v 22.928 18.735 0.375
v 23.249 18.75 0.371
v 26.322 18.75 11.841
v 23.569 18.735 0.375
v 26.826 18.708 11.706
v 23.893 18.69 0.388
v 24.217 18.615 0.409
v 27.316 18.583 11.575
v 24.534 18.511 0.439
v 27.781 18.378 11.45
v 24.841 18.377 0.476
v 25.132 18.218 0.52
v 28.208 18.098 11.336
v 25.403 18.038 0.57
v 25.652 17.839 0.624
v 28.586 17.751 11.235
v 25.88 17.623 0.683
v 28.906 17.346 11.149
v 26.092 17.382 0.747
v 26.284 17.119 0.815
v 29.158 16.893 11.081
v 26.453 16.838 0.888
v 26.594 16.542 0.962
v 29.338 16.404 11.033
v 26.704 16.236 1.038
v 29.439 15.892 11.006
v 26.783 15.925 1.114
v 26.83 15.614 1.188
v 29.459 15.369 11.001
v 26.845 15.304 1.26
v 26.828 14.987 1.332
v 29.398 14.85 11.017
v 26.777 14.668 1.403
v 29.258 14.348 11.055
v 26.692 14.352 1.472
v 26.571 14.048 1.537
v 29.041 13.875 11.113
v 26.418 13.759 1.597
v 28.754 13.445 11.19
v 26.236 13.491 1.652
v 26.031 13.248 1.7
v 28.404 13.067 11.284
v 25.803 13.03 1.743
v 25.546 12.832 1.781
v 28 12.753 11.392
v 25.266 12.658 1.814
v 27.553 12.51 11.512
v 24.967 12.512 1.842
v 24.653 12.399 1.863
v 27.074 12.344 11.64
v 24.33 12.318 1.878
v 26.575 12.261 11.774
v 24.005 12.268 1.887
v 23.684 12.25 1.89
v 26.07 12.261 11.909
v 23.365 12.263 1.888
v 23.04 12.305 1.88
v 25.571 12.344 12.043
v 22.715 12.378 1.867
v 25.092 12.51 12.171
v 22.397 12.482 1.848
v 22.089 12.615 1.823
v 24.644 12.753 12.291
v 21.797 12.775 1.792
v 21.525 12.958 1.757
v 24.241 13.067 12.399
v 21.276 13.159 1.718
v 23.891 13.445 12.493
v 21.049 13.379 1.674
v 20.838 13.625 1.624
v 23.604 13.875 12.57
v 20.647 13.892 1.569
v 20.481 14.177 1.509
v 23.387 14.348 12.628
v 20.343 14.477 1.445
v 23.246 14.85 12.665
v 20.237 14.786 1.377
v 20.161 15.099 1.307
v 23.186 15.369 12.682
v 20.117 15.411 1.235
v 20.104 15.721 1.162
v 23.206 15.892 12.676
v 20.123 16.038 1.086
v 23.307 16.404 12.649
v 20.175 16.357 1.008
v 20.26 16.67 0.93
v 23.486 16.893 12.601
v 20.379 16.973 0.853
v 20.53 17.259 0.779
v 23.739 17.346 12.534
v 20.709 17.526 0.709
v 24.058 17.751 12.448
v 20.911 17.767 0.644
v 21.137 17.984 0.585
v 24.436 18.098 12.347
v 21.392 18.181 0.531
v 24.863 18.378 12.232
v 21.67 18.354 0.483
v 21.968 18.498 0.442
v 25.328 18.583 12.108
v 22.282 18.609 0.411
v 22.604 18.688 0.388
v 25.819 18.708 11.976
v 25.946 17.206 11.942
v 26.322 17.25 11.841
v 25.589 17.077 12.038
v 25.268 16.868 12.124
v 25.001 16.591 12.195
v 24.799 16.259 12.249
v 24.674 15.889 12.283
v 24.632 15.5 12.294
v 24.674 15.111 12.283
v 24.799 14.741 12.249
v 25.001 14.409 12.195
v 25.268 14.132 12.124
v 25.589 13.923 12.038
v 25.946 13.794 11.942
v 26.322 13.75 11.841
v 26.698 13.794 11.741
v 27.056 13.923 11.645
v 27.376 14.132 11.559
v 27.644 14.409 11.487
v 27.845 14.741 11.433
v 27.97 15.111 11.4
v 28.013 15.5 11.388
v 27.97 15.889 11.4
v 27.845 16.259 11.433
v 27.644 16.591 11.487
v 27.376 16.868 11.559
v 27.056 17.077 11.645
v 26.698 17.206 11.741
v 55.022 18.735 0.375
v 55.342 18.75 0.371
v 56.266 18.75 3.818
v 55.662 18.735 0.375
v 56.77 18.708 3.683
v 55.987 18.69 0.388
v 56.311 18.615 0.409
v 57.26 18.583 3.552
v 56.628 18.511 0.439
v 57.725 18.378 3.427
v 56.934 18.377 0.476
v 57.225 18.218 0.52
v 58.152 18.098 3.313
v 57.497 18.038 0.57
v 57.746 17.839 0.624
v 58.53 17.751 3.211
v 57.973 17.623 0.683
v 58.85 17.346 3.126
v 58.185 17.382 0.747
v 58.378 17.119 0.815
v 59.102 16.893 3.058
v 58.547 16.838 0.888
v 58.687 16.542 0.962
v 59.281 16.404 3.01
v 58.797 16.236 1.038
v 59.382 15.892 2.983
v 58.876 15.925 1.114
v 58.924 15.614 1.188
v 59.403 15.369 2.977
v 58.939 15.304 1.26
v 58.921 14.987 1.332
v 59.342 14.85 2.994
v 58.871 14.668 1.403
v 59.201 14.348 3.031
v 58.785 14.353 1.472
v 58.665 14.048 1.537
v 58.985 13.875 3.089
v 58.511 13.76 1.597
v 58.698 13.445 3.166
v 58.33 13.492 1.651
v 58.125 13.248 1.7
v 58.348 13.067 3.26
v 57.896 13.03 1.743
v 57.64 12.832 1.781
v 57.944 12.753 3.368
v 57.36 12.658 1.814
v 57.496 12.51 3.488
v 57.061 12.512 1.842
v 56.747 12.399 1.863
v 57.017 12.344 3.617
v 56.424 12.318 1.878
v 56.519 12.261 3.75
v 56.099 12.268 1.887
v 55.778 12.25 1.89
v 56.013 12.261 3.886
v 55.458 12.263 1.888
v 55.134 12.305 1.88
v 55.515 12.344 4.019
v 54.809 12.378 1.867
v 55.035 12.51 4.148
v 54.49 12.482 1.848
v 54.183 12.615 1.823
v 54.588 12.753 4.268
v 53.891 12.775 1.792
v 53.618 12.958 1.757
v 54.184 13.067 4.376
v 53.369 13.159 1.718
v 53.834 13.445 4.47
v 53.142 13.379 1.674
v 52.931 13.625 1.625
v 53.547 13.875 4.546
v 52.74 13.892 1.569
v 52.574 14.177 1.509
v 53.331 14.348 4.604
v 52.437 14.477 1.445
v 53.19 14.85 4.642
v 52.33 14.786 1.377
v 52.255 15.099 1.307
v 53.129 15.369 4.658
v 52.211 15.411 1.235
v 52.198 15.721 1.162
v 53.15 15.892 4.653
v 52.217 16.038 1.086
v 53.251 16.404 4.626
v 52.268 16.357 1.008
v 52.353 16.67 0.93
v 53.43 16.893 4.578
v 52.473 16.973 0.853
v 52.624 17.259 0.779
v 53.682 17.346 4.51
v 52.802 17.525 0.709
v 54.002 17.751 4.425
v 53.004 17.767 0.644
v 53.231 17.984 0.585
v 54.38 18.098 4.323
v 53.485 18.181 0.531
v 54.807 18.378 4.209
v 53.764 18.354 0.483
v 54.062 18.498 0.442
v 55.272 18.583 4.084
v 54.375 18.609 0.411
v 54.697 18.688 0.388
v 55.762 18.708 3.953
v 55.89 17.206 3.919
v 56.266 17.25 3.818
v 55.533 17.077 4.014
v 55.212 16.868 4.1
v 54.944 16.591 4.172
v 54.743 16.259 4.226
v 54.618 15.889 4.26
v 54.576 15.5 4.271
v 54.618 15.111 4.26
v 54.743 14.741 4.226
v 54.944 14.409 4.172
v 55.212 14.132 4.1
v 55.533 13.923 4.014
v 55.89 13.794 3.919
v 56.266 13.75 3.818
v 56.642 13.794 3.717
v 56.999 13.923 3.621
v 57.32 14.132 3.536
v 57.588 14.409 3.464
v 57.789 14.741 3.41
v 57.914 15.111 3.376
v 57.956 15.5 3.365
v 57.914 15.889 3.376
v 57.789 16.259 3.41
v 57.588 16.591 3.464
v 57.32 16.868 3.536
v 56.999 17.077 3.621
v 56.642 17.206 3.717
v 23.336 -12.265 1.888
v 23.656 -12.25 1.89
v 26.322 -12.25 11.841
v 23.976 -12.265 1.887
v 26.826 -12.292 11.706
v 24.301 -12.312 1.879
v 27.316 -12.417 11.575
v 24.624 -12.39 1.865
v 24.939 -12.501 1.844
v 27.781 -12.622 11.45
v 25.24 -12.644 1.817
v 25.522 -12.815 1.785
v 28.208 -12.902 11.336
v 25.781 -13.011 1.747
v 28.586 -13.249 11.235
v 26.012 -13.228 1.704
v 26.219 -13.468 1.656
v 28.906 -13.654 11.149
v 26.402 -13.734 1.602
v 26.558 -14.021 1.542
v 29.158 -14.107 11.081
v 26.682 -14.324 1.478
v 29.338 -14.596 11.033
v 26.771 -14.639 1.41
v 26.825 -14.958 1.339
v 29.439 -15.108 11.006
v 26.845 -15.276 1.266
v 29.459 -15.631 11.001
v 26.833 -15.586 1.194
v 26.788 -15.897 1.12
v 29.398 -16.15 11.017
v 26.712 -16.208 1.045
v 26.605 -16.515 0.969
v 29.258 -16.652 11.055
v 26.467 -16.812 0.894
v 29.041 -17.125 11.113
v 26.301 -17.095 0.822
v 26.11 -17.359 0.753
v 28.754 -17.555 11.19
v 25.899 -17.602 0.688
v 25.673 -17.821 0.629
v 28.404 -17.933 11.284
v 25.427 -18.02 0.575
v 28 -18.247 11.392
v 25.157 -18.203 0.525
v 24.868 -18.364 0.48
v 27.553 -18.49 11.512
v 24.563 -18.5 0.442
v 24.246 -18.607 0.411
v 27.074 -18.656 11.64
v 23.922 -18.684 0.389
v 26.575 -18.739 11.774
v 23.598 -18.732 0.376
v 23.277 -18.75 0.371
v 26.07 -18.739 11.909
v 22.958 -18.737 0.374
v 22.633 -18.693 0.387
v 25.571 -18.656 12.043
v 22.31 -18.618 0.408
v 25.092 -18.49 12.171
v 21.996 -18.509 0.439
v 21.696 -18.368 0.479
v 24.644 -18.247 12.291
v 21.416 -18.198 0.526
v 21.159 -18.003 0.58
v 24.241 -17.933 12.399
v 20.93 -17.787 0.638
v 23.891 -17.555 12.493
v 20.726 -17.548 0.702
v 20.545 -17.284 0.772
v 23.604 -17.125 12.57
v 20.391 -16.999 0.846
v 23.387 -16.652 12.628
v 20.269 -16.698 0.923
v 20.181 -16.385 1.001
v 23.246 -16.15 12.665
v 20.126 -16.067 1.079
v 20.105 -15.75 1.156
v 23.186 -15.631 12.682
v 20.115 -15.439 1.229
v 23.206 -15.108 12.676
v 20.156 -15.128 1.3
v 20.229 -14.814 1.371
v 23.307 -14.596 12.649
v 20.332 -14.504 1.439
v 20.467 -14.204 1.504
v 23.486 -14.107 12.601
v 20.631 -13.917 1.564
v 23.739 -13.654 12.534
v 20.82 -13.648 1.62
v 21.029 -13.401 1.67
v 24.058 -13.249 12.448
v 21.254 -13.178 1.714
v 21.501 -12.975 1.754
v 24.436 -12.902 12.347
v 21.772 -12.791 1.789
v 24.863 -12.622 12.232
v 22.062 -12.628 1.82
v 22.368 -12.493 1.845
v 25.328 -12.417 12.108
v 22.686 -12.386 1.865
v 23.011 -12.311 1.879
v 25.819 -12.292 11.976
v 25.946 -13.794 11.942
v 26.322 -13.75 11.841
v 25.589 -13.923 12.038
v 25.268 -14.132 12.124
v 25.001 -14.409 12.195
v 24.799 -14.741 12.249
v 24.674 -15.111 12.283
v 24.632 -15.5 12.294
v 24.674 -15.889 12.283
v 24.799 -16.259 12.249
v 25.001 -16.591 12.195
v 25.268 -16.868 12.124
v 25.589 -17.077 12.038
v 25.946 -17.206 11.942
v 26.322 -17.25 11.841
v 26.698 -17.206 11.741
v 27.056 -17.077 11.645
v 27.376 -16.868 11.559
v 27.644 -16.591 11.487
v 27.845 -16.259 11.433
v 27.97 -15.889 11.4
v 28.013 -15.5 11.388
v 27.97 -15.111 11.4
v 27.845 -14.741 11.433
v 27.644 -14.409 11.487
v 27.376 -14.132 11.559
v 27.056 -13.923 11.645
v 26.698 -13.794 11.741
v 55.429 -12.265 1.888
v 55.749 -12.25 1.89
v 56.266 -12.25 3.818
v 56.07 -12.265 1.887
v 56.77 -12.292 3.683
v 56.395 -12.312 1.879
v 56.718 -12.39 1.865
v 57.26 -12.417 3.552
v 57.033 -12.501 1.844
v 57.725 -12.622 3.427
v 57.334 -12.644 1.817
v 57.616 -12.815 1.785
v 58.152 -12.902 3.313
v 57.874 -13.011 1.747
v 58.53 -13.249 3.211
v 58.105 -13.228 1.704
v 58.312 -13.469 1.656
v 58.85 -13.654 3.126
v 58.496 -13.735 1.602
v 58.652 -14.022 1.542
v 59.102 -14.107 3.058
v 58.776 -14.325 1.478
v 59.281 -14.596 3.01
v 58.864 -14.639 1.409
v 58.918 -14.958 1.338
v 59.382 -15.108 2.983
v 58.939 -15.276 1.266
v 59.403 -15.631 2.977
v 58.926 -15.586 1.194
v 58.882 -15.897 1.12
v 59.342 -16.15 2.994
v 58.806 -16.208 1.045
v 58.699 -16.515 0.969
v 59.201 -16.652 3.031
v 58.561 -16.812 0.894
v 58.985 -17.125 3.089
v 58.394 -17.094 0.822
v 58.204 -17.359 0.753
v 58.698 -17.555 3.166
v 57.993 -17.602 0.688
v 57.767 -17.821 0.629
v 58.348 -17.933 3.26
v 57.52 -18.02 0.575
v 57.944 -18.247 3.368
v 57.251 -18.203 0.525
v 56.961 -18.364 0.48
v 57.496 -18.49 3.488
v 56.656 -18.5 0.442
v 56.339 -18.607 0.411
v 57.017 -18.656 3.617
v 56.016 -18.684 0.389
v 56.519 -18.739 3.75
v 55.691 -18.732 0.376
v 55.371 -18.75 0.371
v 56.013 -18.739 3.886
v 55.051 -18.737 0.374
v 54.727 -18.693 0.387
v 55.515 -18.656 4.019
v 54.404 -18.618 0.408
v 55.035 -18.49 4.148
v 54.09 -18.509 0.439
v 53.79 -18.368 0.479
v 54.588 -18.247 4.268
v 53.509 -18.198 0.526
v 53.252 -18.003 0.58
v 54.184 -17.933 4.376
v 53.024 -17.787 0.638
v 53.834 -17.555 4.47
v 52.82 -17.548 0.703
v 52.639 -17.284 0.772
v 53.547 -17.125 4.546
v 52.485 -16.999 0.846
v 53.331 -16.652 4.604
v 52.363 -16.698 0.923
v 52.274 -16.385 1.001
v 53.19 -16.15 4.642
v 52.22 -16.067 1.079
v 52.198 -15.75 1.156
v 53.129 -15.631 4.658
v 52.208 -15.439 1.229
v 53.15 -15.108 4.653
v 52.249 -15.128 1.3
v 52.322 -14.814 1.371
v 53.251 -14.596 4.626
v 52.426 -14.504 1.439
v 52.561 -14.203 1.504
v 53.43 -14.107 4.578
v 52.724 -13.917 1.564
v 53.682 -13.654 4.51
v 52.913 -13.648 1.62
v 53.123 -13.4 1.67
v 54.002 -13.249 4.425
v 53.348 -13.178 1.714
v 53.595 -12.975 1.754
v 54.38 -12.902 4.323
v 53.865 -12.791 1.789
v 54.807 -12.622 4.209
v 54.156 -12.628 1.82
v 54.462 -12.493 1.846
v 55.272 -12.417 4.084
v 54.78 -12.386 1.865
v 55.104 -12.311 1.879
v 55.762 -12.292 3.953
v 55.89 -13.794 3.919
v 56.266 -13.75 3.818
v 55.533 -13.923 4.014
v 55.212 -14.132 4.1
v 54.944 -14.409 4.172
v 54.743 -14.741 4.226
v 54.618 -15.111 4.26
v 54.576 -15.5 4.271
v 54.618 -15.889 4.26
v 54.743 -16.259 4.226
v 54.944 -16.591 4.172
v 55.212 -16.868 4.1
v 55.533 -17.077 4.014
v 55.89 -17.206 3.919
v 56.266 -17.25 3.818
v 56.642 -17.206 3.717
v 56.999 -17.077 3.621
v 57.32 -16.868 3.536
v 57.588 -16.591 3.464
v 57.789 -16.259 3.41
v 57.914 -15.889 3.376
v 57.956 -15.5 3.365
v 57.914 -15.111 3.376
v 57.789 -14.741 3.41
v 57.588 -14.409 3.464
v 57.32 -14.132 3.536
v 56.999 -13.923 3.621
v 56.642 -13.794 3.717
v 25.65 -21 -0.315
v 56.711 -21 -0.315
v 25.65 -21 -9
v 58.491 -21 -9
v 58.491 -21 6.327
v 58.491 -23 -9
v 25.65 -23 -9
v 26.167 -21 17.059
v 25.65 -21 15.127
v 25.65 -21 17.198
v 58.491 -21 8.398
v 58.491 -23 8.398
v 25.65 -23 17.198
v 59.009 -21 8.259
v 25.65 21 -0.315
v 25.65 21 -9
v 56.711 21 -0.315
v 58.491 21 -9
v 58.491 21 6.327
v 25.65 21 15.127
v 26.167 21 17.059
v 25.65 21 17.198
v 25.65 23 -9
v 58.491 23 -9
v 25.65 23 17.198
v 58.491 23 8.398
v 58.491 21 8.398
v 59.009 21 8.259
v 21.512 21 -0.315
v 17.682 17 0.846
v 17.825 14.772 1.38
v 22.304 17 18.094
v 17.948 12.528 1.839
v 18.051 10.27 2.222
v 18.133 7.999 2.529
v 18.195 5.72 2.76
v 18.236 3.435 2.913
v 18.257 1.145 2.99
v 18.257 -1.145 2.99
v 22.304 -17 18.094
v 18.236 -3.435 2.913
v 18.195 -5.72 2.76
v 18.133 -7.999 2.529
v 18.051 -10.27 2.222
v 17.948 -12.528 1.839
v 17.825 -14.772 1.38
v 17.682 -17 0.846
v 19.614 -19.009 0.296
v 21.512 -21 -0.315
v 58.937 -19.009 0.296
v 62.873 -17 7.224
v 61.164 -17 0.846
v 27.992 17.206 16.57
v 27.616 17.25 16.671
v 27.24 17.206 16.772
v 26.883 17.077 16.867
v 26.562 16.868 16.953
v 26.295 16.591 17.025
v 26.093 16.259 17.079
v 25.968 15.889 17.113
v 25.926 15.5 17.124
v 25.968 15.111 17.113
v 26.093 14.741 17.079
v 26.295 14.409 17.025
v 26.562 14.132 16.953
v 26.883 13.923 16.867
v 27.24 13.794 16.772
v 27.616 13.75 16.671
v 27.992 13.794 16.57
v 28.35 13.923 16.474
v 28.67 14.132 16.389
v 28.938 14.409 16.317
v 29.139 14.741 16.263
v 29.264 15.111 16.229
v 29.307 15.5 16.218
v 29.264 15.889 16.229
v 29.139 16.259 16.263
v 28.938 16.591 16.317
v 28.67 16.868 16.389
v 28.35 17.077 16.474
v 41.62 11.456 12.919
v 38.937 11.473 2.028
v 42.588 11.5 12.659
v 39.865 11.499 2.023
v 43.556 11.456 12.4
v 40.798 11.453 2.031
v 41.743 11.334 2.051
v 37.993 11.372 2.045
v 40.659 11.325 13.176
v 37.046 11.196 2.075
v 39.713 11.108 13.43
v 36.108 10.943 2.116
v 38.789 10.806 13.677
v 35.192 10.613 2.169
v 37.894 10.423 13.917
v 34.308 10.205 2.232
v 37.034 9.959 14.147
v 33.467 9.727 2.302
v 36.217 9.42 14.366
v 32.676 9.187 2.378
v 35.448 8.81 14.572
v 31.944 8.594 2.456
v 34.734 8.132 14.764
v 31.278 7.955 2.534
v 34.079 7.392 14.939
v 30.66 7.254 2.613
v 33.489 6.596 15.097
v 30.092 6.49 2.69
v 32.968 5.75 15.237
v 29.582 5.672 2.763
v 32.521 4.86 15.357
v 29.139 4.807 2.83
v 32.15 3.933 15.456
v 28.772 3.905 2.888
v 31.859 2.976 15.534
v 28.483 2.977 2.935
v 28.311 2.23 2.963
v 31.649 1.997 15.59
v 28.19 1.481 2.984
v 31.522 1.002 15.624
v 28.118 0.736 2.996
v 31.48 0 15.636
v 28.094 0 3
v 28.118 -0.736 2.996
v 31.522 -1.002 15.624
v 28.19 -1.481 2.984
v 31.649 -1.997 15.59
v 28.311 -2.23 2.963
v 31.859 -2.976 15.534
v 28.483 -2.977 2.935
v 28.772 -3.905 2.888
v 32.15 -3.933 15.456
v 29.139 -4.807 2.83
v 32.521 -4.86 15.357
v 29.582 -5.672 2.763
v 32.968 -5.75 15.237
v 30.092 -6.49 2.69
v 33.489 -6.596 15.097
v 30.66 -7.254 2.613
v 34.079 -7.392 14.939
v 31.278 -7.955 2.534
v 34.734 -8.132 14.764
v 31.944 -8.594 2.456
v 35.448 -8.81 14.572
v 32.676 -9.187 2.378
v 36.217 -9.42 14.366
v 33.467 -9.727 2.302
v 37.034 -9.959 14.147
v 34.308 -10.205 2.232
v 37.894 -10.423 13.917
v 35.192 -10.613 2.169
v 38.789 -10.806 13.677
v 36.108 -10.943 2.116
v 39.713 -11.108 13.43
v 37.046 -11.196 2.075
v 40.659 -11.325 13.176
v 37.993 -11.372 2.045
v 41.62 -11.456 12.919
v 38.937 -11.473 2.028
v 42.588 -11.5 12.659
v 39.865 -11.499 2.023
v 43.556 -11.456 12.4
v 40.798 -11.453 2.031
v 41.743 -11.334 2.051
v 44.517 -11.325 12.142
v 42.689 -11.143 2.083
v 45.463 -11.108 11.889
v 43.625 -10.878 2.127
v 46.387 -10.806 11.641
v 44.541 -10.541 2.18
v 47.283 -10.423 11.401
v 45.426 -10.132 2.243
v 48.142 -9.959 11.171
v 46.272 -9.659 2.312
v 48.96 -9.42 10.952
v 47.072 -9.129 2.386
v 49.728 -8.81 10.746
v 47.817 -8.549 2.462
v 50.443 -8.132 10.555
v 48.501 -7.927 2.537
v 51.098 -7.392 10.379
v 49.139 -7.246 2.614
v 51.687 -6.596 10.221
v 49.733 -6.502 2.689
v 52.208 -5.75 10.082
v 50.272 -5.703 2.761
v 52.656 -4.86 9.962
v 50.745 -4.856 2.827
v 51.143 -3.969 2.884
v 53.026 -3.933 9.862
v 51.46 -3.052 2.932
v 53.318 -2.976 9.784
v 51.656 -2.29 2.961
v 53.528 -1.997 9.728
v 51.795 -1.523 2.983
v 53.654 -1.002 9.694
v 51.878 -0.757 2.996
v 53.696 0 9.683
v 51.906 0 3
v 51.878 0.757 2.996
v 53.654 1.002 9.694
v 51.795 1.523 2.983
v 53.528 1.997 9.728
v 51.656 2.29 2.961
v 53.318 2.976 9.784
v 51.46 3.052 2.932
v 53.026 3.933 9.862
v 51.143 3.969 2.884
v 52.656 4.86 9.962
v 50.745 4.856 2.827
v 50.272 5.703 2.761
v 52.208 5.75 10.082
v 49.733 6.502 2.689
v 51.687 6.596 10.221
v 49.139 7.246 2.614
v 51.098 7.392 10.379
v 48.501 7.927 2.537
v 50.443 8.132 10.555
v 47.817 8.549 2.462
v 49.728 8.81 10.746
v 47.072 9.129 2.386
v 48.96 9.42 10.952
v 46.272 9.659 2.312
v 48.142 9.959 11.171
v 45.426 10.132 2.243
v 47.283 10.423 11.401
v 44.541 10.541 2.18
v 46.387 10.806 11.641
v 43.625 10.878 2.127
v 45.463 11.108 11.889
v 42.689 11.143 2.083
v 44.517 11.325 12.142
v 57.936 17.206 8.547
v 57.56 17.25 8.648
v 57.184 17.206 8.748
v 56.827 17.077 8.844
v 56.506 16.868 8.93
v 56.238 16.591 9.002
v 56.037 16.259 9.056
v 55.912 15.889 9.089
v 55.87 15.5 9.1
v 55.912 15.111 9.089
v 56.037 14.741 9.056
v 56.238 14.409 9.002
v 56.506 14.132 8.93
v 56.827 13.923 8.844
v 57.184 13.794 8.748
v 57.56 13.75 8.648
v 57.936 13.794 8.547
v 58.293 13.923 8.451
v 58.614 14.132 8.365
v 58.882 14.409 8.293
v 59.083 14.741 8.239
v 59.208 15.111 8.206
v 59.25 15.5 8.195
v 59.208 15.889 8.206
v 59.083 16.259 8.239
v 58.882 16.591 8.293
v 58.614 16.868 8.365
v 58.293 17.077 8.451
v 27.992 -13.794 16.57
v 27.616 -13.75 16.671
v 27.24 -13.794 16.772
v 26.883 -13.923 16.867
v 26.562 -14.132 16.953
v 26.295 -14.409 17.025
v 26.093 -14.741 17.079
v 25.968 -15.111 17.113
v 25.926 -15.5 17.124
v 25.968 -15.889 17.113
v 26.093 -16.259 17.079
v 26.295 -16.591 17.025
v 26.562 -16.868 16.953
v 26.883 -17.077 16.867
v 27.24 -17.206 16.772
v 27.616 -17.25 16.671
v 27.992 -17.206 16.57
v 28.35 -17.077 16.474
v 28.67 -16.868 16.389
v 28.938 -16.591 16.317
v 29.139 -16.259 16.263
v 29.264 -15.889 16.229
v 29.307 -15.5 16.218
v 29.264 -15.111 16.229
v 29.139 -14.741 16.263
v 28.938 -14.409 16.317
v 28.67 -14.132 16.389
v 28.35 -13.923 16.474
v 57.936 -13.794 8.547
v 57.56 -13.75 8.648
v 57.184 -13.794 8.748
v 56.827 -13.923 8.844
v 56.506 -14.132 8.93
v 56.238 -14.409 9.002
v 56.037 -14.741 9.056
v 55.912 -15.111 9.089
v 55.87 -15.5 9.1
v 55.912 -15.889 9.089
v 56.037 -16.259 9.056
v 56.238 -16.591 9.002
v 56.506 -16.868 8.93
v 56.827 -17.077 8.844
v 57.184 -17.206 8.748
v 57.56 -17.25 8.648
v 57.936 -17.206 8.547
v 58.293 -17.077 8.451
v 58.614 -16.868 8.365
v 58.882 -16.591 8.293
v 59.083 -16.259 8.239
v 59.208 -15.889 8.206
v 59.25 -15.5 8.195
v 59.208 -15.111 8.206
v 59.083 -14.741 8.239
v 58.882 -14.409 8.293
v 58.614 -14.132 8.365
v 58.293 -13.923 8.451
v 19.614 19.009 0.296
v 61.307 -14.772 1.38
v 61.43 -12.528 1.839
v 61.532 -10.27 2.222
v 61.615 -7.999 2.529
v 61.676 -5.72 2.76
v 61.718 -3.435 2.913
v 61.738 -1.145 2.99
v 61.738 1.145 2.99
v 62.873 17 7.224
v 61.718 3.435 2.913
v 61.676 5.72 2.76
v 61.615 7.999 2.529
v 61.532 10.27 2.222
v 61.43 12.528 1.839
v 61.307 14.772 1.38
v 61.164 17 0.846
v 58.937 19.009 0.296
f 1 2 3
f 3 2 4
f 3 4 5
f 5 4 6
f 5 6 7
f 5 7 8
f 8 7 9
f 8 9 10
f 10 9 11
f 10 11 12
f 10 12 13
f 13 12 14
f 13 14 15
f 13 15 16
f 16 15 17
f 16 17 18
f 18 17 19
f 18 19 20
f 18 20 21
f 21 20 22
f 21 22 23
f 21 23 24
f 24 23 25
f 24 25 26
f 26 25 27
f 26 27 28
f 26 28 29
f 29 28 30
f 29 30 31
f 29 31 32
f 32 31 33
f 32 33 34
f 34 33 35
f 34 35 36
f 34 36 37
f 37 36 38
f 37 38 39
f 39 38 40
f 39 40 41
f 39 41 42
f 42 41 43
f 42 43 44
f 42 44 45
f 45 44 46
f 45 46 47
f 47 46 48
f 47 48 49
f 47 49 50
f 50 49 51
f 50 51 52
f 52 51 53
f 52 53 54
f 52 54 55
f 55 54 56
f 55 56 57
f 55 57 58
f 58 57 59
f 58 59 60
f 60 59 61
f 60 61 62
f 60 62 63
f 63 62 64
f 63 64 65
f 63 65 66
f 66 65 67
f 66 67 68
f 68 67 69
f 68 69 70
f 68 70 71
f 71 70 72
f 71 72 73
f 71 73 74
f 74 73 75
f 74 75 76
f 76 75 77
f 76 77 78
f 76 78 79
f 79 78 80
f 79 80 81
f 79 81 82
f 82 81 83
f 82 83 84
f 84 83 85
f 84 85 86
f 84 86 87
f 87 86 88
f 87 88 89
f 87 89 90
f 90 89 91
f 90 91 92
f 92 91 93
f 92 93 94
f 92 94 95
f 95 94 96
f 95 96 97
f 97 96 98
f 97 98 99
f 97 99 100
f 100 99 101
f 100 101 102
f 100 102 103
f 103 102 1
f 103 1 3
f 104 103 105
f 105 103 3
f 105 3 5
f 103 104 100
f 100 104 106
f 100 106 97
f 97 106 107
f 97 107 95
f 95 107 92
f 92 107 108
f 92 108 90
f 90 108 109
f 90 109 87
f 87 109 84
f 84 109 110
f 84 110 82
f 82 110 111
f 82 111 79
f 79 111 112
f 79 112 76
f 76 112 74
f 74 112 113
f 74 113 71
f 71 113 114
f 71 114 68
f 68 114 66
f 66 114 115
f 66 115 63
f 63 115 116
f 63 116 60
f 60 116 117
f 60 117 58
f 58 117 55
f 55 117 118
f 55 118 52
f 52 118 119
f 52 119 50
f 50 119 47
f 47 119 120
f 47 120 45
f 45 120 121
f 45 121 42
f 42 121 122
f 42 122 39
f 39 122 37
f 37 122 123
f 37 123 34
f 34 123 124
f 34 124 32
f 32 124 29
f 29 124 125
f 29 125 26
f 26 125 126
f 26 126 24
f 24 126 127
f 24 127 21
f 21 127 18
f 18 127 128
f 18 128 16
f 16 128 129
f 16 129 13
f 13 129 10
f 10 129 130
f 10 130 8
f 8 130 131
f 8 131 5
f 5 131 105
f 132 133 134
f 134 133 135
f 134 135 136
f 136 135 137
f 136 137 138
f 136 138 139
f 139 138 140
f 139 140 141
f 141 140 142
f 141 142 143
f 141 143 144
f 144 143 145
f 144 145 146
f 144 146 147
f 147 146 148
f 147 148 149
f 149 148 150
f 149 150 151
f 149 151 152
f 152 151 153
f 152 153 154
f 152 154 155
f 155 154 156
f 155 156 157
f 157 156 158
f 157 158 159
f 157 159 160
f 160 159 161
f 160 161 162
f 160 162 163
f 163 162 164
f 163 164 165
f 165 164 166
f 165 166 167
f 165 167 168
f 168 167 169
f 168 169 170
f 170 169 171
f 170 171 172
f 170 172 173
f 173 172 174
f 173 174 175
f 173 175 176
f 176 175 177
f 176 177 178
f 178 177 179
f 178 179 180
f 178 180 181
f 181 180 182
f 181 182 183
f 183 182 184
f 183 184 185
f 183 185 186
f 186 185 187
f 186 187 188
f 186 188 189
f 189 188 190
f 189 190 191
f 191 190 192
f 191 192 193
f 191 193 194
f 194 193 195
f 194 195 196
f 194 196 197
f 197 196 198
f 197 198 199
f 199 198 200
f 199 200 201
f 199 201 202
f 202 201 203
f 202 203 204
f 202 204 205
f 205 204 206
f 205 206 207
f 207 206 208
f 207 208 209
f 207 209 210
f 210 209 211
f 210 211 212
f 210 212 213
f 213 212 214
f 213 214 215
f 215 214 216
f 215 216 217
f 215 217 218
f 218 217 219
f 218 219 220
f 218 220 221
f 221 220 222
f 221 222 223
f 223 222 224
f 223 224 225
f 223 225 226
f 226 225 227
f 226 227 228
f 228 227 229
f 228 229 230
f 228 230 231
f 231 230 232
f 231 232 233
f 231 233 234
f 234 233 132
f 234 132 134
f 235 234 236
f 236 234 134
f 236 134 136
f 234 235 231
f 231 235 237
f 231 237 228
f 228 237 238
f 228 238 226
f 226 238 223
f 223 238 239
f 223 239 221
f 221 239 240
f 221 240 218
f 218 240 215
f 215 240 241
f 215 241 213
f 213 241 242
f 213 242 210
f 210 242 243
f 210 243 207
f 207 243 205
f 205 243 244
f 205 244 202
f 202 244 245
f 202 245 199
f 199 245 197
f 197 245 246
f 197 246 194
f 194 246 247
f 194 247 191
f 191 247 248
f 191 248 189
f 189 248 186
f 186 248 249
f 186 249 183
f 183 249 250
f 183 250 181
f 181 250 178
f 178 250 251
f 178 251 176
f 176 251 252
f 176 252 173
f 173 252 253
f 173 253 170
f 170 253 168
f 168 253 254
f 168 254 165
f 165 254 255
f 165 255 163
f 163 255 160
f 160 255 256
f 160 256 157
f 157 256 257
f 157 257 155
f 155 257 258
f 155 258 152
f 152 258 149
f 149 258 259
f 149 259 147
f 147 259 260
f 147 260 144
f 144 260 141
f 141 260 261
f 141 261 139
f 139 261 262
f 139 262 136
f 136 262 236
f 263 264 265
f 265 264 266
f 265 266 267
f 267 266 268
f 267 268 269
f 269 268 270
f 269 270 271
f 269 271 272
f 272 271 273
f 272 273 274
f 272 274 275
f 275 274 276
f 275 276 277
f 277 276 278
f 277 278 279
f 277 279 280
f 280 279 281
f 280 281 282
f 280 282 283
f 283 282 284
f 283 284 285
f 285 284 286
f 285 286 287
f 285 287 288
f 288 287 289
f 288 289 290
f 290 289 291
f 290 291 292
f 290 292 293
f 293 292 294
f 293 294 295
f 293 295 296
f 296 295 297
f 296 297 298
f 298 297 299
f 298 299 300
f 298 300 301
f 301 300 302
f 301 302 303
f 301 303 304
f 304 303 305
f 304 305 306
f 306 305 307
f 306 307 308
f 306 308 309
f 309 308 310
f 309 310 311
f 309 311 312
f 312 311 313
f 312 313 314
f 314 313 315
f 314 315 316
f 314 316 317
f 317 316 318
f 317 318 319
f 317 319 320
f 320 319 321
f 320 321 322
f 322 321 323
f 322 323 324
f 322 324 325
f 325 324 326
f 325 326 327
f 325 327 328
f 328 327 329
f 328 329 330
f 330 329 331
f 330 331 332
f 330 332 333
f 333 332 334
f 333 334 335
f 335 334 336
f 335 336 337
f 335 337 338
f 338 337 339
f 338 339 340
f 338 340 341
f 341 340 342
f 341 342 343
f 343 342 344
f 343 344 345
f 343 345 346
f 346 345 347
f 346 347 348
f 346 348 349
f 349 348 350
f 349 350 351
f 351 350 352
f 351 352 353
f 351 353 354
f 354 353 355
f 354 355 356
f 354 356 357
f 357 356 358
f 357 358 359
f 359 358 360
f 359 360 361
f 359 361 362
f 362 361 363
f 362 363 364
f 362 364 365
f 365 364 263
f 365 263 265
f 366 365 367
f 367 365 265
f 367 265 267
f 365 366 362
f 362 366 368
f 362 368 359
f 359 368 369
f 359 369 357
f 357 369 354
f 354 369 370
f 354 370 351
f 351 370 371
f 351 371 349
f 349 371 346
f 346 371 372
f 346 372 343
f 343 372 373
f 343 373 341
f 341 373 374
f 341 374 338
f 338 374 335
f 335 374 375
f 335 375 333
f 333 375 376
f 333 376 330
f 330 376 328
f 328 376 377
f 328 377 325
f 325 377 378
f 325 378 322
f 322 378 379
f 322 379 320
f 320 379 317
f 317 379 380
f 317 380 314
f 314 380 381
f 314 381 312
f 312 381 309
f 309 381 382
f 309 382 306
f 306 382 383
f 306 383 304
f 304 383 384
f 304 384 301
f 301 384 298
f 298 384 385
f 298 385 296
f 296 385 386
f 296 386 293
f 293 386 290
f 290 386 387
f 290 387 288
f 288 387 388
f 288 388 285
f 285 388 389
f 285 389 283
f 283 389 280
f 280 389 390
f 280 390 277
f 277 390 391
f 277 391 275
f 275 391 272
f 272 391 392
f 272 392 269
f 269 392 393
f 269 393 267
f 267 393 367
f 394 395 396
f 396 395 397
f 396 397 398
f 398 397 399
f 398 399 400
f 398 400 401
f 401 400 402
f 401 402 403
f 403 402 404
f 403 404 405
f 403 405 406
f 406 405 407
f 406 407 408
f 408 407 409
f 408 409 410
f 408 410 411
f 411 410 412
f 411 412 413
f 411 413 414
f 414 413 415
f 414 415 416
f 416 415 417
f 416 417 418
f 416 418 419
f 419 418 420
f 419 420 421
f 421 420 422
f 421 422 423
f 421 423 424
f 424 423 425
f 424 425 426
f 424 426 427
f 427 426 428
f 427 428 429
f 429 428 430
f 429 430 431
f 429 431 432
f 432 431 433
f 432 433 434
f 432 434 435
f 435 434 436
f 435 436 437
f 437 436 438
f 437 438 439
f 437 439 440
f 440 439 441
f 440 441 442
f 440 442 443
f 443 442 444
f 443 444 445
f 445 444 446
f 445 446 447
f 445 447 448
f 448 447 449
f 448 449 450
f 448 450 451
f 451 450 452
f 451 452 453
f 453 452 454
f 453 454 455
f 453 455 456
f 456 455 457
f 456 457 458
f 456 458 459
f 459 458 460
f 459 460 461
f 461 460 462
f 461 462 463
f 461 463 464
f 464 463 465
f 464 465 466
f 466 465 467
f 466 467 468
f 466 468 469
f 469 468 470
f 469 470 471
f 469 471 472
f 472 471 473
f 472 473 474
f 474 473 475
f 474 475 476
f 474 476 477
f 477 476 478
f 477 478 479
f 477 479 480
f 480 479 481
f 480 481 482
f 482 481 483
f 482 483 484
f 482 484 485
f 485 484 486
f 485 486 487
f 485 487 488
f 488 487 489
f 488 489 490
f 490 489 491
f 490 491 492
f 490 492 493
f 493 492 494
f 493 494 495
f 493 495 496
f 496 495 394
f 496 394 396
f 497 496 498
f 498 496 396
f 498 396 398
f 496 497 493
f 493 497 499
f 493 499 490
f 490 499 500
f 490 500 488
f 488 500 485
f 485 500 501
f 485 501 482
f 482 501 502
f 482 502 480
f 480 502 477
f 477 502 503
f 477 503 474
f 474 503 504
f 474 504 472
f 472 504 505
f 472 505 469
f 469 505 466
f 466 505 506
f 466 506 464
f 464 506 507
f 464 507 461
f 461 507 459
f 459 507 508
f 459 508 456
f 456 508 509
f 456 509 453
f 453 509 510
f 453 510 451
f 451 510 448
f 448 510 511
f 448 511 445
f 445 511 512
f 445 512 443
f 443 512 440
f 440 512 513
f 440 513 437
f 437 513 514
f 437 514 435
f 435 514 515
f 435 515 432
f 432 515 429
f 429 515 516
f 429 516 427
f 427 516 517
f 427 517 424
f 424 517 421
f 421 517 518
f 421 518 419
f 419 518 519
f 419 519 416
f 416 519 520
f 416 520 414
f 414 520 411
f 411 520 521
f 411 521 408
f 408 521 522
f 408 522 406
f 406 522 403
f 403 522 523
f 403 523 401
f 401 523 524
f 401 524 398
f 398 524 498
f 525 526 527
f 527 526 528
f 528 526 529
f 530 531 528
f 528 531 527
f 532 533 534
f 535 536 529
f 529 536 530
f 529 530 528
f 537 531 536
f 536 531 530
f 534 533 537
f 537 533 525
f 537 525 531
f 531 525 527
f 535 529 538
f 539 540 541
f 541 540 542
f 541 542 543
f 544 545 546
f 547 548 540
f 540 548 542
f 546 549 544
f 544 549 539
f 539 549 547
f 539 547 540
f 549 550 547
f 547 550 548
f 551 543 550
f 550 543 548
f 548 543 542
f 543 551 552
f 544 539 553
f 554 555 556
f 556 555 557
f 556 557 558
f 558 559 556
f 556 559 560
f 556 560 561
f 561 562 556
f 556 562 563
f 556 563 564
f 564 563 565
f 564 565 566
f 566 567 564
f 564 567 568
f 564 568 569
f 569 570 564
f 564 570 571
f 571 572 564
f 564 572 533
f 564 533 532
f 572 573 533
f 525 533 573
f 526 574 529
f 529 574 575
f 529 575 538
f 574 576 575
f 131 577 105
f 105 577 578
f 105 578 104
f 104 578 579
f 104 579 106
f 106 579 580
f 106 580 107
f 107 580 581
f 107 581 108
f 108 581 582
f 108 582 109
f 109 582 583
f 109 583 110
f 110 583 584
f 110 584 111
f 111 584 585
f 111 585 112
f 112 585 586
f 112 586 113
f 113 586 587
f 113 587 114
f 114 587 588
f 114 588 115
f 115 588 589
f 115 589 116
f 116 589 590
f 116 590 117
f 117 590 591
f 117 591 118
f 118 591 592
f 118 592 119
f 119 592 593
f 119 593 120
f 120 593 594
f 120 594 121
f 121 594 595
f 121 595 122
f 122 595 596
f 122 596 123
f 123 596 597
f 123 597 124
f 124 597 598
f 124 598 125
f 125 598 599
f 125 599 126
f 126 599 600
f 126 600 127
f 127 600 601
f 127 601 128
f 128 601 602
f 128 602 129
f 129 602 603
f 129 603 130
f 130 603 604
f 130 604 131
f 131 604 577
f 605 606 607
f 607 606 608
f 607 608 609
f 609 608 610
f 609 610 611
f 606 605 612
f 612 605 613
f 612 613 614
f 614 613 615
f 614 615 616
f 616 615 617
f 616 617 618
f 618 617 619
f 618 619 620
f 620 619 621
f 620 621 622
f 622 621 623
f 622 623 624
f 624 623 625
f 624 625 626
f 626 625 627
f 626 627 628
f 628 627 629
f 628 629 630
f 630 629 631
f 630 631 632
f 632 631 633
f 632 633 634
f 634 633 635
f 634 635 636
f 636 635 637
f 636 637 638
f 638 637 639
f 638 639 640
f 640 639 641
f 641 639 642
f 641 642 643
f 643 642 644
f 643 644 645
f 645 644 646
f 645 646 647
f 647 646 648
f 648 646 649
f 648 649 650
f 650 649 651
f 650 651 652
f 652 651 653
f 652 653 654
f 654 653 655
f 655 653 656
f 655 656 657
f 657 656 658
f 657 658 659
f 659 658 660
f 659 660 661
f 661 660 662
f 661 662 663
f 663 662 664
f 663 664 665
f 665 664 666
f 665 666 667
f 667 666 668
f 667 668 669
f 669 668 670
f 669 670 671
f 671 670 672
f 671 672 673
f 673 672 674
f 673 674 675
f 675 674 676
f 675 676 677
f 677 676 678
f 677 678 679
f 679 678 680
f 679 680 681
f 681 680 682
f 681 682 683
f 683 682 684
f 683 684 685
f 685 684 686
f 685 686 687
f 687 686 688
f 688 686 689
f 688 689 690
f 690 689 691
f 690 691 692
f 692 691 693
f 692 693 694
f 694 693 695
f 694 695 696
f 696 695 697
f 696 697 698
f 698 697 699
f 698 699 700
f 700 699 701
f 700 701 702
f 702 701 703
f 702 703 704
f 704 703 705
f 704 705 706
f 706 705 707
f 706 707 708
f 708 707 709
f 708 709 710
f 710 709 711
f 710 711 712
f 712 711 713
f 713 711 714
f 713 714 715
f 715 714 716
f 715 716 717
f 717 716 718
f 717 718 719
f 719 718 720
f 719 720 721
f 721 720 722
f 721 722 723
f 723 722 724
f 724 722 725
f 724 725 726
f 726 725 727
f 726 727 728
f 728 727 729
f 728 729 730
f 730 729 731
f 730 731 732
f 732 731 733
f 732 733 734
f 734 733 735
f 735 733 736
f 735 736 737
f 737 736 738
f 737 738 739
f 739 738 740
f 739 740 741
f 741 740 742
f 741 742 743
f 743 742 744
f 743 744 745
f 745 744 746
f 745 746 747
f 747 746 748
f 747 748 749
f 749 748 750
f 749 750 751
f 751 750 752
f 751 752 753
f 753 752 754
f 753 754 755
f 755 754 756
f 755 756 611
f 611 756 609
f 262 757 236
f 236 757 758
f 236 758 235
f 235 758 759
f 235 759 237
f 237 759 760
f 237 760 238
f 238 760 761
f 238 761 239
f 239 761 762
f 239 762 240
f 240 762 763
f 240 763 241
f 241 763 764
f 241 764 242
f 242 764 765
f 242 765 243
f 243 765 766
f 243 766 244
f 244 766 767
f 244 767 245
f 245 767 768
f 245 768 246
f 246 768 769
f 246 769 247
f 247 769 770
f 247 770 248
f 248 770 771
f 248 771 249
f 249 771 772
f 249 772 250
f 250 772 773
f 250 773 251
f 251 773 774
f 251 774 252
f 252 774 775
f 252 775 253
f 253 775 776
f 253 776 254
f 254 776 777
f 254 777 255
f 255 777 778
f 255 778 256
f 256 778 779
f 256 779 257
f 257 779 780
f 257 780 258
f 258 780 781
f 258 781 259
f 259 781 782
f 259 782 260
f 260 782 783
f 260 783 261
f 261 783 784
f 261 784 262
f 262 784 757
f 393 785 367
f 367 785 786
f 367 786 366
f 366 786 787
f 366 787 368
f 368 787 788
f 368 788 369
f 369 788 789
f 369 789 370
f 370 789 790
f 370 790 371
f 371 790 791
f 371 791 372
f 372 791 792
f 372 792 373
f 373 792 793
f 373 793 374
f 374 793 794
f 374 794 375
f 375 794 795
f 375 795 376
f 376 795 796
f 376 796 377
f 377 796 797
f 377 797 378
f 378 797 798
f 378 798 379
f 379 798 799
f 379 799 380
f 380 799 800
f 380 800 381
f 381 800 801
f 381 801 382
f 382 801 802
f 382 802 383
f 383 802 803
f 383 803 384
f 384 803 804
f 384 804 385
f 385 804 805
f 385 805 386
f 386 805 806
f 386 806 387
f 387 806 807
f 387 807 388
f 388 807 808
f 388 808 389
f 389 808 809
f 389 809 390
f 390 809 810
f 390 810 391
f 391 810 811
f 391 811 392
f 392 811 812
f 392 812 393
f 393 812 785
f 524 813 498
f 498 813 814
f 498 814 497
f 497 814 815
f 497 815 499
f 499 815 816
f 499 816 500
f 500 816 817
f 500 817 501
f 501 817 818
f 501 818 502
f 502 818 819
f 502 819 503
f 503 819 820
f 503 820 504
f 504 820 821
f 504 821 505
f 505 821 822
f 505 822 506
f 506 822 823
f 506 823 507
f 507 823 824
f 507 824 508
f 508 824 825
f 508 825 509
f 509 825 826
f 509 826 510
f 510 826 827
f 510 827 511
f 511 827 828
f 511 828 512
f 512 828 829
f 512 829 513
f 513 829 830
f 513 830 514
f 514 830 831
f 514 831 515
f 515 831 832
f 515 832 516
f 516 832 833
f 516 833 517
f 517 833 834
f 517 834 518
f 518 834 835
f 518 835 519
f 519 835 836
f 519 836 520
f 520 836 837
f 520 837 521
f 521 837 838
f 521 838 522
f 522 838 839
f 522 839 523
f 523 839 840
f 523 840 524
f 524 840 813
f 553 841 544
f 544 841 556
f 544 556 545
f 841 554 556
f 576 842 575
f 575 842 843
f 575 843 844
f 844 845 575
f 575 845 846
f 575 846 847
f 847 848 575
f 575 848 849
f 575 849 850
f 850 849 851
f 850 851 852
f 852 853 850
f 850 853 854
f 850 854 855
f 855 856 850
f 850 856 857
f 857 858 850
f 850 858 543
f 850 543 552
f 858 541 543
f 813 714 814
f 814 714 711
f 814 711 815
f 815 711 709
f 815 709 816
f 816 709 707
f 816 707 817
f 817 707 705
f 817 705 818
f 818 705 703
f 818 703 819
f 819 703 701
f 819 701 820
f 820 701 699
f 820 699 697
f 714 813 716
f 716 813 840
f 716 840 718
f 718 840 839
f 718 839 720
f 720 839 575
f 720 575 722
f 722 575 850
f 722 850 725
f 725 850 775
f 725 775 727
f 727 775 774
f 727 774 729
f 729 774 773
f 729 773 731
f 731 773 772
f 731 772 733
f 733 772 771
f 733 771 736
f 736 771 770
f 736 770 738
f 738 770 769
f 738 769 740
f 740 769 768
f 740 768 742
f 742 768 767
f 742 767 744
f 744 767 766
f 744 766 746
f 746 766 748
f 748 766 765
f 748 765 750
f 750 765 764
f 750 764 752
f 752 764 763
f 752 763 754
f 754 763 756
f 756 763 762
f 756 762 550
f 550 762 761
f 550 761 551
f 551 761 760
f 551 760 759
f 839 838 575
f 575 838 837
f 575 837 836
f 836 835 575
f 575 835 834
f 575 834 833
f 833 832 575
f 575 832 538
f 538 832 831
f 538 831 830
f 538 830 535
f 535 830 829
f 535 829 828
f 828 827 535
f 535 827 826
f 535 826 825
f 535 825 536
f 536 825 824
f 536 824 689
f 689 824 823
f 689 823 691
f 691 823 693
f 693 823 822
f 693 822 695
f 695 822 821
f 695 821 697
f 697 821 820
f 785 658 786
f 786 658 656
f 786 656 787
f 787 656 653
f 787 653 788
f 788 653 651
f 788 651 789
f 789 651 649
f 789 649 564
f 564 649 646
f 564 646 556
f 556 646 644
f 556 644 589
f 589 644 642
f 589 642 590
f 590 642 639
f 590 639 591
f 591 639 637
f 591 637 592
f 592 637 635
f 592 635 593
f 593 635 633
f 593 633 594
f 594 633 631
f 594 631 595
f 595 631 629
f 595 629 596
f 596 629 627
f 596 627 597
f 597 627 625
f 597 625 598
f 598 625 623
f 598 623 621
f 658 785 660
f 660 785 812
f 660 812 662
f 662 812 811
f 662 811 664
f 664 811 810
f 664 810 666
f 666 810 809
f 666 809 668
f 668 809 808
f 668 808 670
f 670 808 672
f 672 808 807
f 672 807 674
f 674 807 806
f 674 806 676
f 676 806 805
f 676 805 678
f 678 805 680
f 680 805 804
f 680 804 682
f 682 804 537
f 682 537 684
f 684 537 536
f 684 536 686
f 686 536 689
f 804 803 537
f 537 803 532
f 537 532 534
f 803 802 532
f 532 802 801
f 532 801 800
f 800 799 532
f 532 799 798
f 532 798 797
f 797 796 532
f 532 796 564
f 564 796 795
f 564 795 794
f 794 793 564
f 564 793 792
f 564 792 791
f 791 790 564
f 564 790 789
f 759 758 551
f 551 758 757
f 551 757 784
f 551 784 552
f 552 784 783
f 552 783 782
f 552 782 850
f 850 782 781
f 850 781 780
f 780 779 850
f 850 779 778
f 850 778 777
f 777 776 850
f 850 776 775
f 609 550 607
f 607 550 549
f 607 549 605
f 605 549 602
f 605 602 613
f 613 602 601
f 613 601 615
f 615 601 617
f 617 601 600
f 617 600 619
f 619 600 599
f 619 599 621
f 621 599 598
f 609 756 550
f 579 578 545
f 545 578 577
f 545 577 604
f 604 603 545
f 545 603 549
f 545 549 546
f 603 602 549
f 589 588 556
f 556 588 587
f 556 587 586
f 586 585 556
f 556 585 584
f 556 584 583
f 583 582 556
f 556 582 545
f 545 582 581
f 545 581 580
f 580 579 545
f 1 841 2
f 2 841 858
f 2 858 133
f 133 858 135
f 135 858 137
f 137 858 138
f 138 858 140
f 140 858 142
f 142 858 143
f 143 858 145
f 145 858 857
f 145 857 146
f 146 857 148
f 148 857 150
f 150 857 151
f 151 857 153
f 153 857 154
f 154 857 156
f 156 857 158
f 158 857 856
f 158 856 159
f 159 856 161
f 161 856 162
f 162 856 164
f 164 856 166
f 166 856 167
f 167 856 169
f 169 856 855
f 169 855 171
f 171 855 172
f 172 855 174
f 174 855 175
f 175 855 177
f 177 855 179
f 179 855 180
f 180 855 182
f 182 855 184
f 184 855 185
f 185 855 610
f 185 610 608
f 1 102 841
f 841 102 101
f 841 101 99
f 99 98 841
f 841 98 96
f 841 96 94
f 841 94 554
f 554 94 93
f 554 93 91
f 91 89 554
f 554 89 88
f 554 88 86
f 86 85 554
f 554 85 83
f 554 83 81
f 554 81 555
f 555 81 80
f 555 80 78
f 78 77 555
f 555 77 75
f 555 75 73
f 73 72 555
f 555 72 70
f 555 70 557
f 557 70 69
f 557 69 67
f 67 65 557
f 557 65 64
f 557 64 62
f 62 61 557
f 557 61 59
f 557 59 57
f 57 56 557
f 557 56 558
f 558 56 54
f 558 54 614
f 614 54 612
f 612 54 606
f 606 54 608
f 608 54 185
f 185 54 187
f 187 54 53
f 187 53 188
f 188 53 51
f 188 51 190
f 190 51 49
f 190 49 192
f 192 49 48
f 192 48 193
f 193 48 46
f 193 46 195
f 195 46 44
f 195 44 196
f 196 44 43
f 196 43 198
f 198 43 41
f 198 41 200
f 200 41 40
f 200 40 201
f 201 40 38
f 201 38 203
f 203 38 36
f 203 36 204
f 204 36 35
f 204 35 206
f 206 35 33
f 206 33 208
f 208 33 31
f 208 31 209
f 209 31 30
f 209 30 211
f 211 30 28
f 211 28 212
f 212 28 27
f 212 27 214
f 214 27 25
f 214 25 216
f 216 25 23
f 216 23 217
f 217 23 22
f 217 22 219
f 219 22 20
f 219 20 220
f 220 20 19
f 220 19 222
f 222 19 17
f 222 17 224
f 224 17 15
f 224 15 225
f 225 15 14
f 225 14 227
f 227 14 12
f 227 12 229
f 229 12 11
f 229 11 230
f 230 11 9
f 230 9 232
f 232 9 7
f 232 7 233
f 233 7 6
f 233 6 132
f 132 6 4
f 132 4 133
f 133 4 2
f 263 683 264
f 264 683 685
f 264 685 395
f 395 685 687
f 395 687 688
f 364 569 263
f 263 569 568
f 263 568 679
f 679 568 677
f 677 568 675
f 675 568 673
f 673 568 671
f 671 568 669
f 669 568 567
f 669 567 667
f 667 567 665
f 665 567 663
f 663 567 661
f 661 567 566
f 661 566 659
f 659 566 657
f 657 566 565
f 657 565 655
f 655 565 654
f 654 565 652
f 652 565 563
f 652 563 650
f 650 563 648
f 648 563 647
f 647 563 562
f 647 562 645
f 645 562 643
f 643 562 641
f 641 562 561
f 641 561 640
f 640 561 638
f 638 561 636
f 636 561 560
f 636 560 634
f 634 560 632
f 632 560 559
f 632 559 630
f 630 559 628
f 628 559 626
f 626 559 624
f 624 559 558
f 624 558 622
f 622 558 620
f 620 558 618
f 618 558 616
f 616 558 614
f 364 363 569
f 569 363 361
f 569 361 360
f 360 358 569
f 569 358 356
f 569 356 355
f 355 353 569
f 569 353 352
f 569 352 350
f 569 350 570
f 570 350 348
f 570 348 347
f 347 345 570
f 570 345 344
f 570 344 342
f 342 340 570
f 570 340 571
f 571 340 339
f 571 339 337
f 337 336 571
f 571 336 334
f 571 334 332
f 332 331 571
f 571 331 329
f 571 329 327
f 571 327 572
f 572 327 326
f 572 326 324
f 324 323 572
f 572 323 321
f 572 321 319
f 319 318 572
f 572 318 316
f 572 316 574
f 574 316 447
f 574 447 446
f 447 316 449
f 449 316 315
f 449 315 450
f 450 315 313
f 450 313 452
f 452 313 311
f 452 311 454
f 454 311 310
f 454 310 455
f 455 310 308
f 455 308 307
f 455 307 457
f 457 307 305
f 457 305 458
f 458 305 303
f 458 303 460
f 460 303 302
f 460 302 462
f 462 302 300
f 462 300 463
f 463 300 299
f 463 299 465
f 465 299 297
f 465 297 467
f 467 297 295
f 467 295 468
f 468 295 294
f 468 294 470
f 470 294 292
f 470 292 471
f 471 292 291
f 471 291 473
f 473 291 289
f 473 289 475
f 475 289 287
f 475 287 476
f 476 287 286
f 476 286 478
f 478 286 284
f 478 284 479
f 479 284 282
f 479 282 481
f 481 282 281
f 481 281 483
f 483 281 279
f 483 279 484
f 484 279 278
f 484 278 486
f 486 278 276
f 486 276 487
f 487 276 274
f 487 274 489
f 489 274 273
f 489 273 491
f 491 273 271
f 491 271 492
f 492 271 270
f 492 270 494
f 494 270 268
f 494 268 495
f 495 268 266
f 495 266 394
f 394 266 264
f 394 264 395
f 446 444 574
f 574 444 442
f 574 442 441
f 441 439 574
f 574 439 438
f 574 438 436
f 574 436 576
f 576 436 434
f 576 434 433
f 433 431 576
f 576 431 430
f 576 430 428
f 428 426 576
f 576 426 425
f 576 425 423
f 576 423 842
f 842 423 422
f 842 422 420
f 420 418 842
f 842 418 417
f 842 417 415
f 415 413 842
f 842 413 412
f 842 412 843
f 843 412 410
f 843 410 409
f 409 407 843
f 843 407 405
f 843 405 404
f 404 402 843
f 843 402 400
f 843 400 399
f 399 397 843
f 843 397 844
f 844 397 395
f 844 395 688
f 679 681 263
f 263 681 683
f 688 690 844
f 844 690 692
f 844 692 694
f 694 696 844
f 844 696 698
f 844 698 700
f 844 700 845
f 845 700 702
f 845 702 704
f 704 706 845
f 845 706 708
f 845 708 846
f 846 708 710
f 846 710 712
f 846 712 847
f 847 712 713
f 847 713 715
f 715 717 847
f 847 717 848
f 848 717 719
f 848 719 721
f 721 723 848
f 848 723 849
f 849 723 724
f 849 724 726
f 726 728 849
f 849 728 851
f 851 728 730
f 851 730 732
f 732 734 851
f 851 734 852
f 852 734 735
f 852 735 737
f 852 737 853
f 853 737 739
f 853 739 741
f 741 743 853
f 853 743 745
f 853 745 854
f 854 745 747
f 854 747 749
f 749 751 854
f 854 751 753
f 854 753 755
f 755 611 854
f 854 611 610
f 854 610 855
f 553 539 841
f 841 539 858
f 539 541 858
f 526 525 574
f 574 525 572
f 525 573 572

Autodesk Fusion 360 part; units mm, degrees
sketch "Sketch5" plane through (0, 0, 0) normal (1, 0, 0) x (0, 1, 0)
  line L0 (-20, 0) -> (20, 0)
  arc A0 (20, 0) -> (-20, 0) centre (0, -65.1667) ccw
  line L1 (-9.145, 3) -> (16.9339, 3) construction
  line L2 (-20, 0) -> (20, 0)
  line L3 (20, 0) -> (20, -3)
  line L4 (20, -3) -> (-20, -3)
  line L5 (-20, -3) -> (-20, 0)
  dimension "d18" = 3
  dimension "d19" = 40
  dimension "d20" = 3
extrude "Extrude5" add sketch "Sketch5" along normal blind 70 makes body 1
sketch "Sketch6" plane through (0, 0, -3) normal (0, 0, -1) x (1, 0, 0)
  line L0 (0, 20) -> (0, -20)
  line L1 (0, -20) -> (70, -20)
  line L2 (70, -20) -> (70, 20)
  line L3 (70, 20) -> (0, 20)
  line L4 (32.5, -5) -> (47.5, -5)
  arc A0 (47.5, -5) -> (47.5, 5) centre (47.5, 0) ccw
  line L5 (47.5, 5) -> (32.5, 5)
  arc A1 (32.5, 5) -> (32.5, -5) centre (32.5, 0) ccw
  line L6 (32.5, 0) -> (47.5, 0) construction
  line L7 (0, 0) -> (70, 0) construction
  line L8 (40, 5) -> (40, -5) construction
  dimension "d23" = 10
  dimension "d24" = 15
  dimension "d25" = 40
extrude "Extrude6" cut sketch "Sketch6" against normal through all contours L4 A0 L5 A1 bodies 1
ref_plane "WorkPlane3" through (0, 12.125, 0) normal (-0.9659, 0, 0.2588) x (0, 1, 0)
sketch "Sketch7" plane through (0, 12.125, 0) normal (-0.9659, 0, 0.2588) x (0, 1, 0)
  line L0 (10.375, 0) -> (-34.625, 0)
  line L1 (-34.625, 0) -> (-34.625, -25)
  line L2 (-34.625, -25) -> (10.375, -25)
  line L3 (10.375, -25) -> (10.375, 0)
  line L4 (-10.375, 0) -> (10.375, 0)
  point P0 (-12.125, 0)
  dimension "d28" = 45
  dimension "d29" = 25
extrude "Extrude7" add sketch "Sketch7" along normal blind 45 bodies 1
extrude "Extrude8" add 1 faces at (-28.9778, -6.6667, 7.7646) along direction (-0.258819, 0, -0.965926) blind 55 on bodies 1 bodies 1
ref_plane "WorkPlane4" through (16.4027, 0, 3) normal (0, 0, 1) x (0, 1, 0)
sketch "Sketch8" plane through (16.4027, 0, 3) normal (0, 0, 1) x (1, 0, 0)
  line L0 (16.0973, 5) -> (31.0973, 5)
  spline S0 degree 3 poles (31.0973, 5) (31.7254, 5) (32.3951, 4.8744) (33.627, 4.3641) (34.189, 3.9793) (35.0767, 3.0917) (35.4614, 2.5296) (35.9718, 1.2978) (36.0973, 0.6281) (36.0973, -0.6281) (35.9718, -1.2978) (35.4614, -2.5296) (35.0767, -3.0917) (34.189, -3.9793) (33.627, -4.3641) (32.3951, -4.8744) (31.7254, -5) (31.0973, -5) knots -1.507328 -1.507328 -1.507328 -1.507328 -1.318912 -1.318912 -1.130496 -1.130496 -0.94208 -0.94208 -0.753664 -0.753664 -0.565248 -0.565248 -0.376832 -0.376832 -0.188416 -0.188416 0 0 0 0
  line L1 (31.0973, -5) -> (16.0973, -5)
  spline S1 degree 3 poles (16.0973, -5) (15.4693, -5) (14.7995, -4.8744) (13.5677, -4.3641) (13.0056, -3.9793) (12.118, -3.0917) (11.7332, -2.5296) (11.2229, -1.2978) (11.0973, -0.6281) (11.0973, 0.6281) (11.2229, 1.2978) (11.7332, 2.5296) (12.118, 3.0917) (13.0056, 3.9793) (13.5677, 4.3641) (14.7995, 4.8744) (15.4693, 5) (16.0973, 5) knots 0 0 0 0 0.188416 0.188416 0.376832 0.376832 0.565248 0.565248 0.753664 0.753664 0.94208 0.94208 1.130496 1.130496 1.318912 1.318912 1.507328 1.507328 1.507328 1.507328
  line L2 (23.5973, 5) -> (23.5973, -5) construction
  circle A0 centre (23.5973, 0) radius 16
  circle A1 centre (23.5973, 0) radius 13
  dimension "d35" = 32
  dimension "d36" = 26
ref_plane "WorkPlane5" through (40, 0, 3) normal (0.2588, 0, 0.9659) x (0, -1, 0)
ref_plane "WorkPlane6" through (42.0706, 0, 10.7274) normal (0.2588, 0, 0.9659) x (0, -1, 0)
sketch "Sketch10" plane through (42.0706, 0, 10.7274) normal (0.2588, 0, 0.9659) x (0, -1, 0)
  line L0 (21, -21) -> (-21, 21) construction
  line L1 (21, -21) -> (-21, -21)
  line L2 (-21, -21) -> (-21, 21)
  line L3 (-21, 21) -> (21, 21)
  line L4 (21, 21) -> (21, -21)
  line L5 (21, -17) -> (17, -21)
  line L6 (-17, -21) -> (-21, -17)
  line L7 (-21, 17) -> (-17, 21)
  line L8 (21, 17) -> (17, 21)
  line L9 (-21, -17) -> (-23, -17)
  line L10 (-23, -17) -> (-23, 17)
  line L11 (-23, 17) -> (-21, 17)
  line L12 (-21, 17) -> (-21, -17)
  line L13 (21, -17) -> (23, -17)
  line L14 (23, -17) -> (23, 17)
  line L15 (23, 17) -> (21, 17)
  line L16 (21, 17) -> (21, -17)
  circle A0 centre (0, 0) radius 11.5
  line L17 (15.5, -15.5) -> (-15.5, -15.5) construction
  line L18 (-15.5, -15.5) -> (-15.5, 15.5) construction
  line L19 (-15.5, 15.5) -> (15.5, 15.5) construction
  line L20 (15.5, 15.5) -> (15.5, -15.5) construction
  line L21 (0, -21) -> (0, -15.5) construction
  line L22 (0, 15.5) -> (0, 21) construction
  circle A1 centre (15.5, -15.5) radius 1.75
  circle A2 centre (-15.5, -15.5) radius 1.75
  circle A3 centre (15.5, 15.5) radius 1.75
  circle A4 centre (-15.5, 15.5) radius 1.75
  circle A5 centre (15.5, -15.5) radius 3.25
  circle A6 centre (-15.5, -15.5) radius 3.25
  circle A7 centre (-15.5, 15.5) radius 3.25
  circle A8 centre (15.5, 15.5) radius 3.25
  dimension "d64" = 42
  dimension "d65" = 4
  dimension "d66" = 2
  dimension "d67" = 2
  dimension "d75" = 23
  dimension "d76" = 31
  dimension "d77" = 3.5
  dimension "d78" = 6.5
extrude "Extrude16" add sketch "Sketch10" along normal up to surface from surface at 2 separate body contours L1 L2 L3 L4 L5 L6 L7 L8 L12 L16 | A5 | A6 | A7 | A8 end surface at (34.1667, -15.0749, 1.3122) on bodies 1 makes body 2
sketch "Sketch13" plane through (0, 0, -3) normal (0, 0, -1) x (1, 0, 0)
  line L0 (32.5, 5) -> (47.5, 5)
  arc A0 (47.5, -5) -> (47.5, 5) centre (47.5, 0) ccw
  line L1 (47.5, -5) -> (32.5, -5)
  arc A1 (32.5, 5) -> (32.5, -5) centre (32.5, 0) ccw
  line L2 (0, 20) -> (0, -20)
  line L3 (0, -20) -> (70, -20)
  line L4 (70, -20) -> (70, 20)
  line L5 (70, 20) -> (0, 20)
  line L6 (25.6498, 23) -> (58.4913, 23)
  line L7 (25.6498, 21) -> (25.6498, 23)
  line L8 (58.4913, 23) -> (58.4913, 21)
  line L9 (58.4913, -21) -> (25.6498, -21)
  line L10 (58.4913, -23) -> (58.4913, -21)
  line L11 (25.6498, -23) -> (58.4913, -23)
  line L12 (21.7861, -21) -> (62.355, -21)
  line L13 (25.6498, -21) -> (25.6498, -23)
  line L14 (58.4913, 21) -> (25.6498, 21)
extrude "Extrude17" add sketch "Sketch13" along normal up to surface and the other way blind -6 contours L6 L7 L8 L14 | L9 L10 L11 L12 L13 end surface through (42.5882, 0, 12.6593) normal (0.258819, 0, 0.965926) offset 0 bodies 2
extrude "Extrude18" cut sketch "Sketch10" against normal through all from surface at -3 contours A5 | A6 | A7 | A8 bodies 2
hidden bodies 1
